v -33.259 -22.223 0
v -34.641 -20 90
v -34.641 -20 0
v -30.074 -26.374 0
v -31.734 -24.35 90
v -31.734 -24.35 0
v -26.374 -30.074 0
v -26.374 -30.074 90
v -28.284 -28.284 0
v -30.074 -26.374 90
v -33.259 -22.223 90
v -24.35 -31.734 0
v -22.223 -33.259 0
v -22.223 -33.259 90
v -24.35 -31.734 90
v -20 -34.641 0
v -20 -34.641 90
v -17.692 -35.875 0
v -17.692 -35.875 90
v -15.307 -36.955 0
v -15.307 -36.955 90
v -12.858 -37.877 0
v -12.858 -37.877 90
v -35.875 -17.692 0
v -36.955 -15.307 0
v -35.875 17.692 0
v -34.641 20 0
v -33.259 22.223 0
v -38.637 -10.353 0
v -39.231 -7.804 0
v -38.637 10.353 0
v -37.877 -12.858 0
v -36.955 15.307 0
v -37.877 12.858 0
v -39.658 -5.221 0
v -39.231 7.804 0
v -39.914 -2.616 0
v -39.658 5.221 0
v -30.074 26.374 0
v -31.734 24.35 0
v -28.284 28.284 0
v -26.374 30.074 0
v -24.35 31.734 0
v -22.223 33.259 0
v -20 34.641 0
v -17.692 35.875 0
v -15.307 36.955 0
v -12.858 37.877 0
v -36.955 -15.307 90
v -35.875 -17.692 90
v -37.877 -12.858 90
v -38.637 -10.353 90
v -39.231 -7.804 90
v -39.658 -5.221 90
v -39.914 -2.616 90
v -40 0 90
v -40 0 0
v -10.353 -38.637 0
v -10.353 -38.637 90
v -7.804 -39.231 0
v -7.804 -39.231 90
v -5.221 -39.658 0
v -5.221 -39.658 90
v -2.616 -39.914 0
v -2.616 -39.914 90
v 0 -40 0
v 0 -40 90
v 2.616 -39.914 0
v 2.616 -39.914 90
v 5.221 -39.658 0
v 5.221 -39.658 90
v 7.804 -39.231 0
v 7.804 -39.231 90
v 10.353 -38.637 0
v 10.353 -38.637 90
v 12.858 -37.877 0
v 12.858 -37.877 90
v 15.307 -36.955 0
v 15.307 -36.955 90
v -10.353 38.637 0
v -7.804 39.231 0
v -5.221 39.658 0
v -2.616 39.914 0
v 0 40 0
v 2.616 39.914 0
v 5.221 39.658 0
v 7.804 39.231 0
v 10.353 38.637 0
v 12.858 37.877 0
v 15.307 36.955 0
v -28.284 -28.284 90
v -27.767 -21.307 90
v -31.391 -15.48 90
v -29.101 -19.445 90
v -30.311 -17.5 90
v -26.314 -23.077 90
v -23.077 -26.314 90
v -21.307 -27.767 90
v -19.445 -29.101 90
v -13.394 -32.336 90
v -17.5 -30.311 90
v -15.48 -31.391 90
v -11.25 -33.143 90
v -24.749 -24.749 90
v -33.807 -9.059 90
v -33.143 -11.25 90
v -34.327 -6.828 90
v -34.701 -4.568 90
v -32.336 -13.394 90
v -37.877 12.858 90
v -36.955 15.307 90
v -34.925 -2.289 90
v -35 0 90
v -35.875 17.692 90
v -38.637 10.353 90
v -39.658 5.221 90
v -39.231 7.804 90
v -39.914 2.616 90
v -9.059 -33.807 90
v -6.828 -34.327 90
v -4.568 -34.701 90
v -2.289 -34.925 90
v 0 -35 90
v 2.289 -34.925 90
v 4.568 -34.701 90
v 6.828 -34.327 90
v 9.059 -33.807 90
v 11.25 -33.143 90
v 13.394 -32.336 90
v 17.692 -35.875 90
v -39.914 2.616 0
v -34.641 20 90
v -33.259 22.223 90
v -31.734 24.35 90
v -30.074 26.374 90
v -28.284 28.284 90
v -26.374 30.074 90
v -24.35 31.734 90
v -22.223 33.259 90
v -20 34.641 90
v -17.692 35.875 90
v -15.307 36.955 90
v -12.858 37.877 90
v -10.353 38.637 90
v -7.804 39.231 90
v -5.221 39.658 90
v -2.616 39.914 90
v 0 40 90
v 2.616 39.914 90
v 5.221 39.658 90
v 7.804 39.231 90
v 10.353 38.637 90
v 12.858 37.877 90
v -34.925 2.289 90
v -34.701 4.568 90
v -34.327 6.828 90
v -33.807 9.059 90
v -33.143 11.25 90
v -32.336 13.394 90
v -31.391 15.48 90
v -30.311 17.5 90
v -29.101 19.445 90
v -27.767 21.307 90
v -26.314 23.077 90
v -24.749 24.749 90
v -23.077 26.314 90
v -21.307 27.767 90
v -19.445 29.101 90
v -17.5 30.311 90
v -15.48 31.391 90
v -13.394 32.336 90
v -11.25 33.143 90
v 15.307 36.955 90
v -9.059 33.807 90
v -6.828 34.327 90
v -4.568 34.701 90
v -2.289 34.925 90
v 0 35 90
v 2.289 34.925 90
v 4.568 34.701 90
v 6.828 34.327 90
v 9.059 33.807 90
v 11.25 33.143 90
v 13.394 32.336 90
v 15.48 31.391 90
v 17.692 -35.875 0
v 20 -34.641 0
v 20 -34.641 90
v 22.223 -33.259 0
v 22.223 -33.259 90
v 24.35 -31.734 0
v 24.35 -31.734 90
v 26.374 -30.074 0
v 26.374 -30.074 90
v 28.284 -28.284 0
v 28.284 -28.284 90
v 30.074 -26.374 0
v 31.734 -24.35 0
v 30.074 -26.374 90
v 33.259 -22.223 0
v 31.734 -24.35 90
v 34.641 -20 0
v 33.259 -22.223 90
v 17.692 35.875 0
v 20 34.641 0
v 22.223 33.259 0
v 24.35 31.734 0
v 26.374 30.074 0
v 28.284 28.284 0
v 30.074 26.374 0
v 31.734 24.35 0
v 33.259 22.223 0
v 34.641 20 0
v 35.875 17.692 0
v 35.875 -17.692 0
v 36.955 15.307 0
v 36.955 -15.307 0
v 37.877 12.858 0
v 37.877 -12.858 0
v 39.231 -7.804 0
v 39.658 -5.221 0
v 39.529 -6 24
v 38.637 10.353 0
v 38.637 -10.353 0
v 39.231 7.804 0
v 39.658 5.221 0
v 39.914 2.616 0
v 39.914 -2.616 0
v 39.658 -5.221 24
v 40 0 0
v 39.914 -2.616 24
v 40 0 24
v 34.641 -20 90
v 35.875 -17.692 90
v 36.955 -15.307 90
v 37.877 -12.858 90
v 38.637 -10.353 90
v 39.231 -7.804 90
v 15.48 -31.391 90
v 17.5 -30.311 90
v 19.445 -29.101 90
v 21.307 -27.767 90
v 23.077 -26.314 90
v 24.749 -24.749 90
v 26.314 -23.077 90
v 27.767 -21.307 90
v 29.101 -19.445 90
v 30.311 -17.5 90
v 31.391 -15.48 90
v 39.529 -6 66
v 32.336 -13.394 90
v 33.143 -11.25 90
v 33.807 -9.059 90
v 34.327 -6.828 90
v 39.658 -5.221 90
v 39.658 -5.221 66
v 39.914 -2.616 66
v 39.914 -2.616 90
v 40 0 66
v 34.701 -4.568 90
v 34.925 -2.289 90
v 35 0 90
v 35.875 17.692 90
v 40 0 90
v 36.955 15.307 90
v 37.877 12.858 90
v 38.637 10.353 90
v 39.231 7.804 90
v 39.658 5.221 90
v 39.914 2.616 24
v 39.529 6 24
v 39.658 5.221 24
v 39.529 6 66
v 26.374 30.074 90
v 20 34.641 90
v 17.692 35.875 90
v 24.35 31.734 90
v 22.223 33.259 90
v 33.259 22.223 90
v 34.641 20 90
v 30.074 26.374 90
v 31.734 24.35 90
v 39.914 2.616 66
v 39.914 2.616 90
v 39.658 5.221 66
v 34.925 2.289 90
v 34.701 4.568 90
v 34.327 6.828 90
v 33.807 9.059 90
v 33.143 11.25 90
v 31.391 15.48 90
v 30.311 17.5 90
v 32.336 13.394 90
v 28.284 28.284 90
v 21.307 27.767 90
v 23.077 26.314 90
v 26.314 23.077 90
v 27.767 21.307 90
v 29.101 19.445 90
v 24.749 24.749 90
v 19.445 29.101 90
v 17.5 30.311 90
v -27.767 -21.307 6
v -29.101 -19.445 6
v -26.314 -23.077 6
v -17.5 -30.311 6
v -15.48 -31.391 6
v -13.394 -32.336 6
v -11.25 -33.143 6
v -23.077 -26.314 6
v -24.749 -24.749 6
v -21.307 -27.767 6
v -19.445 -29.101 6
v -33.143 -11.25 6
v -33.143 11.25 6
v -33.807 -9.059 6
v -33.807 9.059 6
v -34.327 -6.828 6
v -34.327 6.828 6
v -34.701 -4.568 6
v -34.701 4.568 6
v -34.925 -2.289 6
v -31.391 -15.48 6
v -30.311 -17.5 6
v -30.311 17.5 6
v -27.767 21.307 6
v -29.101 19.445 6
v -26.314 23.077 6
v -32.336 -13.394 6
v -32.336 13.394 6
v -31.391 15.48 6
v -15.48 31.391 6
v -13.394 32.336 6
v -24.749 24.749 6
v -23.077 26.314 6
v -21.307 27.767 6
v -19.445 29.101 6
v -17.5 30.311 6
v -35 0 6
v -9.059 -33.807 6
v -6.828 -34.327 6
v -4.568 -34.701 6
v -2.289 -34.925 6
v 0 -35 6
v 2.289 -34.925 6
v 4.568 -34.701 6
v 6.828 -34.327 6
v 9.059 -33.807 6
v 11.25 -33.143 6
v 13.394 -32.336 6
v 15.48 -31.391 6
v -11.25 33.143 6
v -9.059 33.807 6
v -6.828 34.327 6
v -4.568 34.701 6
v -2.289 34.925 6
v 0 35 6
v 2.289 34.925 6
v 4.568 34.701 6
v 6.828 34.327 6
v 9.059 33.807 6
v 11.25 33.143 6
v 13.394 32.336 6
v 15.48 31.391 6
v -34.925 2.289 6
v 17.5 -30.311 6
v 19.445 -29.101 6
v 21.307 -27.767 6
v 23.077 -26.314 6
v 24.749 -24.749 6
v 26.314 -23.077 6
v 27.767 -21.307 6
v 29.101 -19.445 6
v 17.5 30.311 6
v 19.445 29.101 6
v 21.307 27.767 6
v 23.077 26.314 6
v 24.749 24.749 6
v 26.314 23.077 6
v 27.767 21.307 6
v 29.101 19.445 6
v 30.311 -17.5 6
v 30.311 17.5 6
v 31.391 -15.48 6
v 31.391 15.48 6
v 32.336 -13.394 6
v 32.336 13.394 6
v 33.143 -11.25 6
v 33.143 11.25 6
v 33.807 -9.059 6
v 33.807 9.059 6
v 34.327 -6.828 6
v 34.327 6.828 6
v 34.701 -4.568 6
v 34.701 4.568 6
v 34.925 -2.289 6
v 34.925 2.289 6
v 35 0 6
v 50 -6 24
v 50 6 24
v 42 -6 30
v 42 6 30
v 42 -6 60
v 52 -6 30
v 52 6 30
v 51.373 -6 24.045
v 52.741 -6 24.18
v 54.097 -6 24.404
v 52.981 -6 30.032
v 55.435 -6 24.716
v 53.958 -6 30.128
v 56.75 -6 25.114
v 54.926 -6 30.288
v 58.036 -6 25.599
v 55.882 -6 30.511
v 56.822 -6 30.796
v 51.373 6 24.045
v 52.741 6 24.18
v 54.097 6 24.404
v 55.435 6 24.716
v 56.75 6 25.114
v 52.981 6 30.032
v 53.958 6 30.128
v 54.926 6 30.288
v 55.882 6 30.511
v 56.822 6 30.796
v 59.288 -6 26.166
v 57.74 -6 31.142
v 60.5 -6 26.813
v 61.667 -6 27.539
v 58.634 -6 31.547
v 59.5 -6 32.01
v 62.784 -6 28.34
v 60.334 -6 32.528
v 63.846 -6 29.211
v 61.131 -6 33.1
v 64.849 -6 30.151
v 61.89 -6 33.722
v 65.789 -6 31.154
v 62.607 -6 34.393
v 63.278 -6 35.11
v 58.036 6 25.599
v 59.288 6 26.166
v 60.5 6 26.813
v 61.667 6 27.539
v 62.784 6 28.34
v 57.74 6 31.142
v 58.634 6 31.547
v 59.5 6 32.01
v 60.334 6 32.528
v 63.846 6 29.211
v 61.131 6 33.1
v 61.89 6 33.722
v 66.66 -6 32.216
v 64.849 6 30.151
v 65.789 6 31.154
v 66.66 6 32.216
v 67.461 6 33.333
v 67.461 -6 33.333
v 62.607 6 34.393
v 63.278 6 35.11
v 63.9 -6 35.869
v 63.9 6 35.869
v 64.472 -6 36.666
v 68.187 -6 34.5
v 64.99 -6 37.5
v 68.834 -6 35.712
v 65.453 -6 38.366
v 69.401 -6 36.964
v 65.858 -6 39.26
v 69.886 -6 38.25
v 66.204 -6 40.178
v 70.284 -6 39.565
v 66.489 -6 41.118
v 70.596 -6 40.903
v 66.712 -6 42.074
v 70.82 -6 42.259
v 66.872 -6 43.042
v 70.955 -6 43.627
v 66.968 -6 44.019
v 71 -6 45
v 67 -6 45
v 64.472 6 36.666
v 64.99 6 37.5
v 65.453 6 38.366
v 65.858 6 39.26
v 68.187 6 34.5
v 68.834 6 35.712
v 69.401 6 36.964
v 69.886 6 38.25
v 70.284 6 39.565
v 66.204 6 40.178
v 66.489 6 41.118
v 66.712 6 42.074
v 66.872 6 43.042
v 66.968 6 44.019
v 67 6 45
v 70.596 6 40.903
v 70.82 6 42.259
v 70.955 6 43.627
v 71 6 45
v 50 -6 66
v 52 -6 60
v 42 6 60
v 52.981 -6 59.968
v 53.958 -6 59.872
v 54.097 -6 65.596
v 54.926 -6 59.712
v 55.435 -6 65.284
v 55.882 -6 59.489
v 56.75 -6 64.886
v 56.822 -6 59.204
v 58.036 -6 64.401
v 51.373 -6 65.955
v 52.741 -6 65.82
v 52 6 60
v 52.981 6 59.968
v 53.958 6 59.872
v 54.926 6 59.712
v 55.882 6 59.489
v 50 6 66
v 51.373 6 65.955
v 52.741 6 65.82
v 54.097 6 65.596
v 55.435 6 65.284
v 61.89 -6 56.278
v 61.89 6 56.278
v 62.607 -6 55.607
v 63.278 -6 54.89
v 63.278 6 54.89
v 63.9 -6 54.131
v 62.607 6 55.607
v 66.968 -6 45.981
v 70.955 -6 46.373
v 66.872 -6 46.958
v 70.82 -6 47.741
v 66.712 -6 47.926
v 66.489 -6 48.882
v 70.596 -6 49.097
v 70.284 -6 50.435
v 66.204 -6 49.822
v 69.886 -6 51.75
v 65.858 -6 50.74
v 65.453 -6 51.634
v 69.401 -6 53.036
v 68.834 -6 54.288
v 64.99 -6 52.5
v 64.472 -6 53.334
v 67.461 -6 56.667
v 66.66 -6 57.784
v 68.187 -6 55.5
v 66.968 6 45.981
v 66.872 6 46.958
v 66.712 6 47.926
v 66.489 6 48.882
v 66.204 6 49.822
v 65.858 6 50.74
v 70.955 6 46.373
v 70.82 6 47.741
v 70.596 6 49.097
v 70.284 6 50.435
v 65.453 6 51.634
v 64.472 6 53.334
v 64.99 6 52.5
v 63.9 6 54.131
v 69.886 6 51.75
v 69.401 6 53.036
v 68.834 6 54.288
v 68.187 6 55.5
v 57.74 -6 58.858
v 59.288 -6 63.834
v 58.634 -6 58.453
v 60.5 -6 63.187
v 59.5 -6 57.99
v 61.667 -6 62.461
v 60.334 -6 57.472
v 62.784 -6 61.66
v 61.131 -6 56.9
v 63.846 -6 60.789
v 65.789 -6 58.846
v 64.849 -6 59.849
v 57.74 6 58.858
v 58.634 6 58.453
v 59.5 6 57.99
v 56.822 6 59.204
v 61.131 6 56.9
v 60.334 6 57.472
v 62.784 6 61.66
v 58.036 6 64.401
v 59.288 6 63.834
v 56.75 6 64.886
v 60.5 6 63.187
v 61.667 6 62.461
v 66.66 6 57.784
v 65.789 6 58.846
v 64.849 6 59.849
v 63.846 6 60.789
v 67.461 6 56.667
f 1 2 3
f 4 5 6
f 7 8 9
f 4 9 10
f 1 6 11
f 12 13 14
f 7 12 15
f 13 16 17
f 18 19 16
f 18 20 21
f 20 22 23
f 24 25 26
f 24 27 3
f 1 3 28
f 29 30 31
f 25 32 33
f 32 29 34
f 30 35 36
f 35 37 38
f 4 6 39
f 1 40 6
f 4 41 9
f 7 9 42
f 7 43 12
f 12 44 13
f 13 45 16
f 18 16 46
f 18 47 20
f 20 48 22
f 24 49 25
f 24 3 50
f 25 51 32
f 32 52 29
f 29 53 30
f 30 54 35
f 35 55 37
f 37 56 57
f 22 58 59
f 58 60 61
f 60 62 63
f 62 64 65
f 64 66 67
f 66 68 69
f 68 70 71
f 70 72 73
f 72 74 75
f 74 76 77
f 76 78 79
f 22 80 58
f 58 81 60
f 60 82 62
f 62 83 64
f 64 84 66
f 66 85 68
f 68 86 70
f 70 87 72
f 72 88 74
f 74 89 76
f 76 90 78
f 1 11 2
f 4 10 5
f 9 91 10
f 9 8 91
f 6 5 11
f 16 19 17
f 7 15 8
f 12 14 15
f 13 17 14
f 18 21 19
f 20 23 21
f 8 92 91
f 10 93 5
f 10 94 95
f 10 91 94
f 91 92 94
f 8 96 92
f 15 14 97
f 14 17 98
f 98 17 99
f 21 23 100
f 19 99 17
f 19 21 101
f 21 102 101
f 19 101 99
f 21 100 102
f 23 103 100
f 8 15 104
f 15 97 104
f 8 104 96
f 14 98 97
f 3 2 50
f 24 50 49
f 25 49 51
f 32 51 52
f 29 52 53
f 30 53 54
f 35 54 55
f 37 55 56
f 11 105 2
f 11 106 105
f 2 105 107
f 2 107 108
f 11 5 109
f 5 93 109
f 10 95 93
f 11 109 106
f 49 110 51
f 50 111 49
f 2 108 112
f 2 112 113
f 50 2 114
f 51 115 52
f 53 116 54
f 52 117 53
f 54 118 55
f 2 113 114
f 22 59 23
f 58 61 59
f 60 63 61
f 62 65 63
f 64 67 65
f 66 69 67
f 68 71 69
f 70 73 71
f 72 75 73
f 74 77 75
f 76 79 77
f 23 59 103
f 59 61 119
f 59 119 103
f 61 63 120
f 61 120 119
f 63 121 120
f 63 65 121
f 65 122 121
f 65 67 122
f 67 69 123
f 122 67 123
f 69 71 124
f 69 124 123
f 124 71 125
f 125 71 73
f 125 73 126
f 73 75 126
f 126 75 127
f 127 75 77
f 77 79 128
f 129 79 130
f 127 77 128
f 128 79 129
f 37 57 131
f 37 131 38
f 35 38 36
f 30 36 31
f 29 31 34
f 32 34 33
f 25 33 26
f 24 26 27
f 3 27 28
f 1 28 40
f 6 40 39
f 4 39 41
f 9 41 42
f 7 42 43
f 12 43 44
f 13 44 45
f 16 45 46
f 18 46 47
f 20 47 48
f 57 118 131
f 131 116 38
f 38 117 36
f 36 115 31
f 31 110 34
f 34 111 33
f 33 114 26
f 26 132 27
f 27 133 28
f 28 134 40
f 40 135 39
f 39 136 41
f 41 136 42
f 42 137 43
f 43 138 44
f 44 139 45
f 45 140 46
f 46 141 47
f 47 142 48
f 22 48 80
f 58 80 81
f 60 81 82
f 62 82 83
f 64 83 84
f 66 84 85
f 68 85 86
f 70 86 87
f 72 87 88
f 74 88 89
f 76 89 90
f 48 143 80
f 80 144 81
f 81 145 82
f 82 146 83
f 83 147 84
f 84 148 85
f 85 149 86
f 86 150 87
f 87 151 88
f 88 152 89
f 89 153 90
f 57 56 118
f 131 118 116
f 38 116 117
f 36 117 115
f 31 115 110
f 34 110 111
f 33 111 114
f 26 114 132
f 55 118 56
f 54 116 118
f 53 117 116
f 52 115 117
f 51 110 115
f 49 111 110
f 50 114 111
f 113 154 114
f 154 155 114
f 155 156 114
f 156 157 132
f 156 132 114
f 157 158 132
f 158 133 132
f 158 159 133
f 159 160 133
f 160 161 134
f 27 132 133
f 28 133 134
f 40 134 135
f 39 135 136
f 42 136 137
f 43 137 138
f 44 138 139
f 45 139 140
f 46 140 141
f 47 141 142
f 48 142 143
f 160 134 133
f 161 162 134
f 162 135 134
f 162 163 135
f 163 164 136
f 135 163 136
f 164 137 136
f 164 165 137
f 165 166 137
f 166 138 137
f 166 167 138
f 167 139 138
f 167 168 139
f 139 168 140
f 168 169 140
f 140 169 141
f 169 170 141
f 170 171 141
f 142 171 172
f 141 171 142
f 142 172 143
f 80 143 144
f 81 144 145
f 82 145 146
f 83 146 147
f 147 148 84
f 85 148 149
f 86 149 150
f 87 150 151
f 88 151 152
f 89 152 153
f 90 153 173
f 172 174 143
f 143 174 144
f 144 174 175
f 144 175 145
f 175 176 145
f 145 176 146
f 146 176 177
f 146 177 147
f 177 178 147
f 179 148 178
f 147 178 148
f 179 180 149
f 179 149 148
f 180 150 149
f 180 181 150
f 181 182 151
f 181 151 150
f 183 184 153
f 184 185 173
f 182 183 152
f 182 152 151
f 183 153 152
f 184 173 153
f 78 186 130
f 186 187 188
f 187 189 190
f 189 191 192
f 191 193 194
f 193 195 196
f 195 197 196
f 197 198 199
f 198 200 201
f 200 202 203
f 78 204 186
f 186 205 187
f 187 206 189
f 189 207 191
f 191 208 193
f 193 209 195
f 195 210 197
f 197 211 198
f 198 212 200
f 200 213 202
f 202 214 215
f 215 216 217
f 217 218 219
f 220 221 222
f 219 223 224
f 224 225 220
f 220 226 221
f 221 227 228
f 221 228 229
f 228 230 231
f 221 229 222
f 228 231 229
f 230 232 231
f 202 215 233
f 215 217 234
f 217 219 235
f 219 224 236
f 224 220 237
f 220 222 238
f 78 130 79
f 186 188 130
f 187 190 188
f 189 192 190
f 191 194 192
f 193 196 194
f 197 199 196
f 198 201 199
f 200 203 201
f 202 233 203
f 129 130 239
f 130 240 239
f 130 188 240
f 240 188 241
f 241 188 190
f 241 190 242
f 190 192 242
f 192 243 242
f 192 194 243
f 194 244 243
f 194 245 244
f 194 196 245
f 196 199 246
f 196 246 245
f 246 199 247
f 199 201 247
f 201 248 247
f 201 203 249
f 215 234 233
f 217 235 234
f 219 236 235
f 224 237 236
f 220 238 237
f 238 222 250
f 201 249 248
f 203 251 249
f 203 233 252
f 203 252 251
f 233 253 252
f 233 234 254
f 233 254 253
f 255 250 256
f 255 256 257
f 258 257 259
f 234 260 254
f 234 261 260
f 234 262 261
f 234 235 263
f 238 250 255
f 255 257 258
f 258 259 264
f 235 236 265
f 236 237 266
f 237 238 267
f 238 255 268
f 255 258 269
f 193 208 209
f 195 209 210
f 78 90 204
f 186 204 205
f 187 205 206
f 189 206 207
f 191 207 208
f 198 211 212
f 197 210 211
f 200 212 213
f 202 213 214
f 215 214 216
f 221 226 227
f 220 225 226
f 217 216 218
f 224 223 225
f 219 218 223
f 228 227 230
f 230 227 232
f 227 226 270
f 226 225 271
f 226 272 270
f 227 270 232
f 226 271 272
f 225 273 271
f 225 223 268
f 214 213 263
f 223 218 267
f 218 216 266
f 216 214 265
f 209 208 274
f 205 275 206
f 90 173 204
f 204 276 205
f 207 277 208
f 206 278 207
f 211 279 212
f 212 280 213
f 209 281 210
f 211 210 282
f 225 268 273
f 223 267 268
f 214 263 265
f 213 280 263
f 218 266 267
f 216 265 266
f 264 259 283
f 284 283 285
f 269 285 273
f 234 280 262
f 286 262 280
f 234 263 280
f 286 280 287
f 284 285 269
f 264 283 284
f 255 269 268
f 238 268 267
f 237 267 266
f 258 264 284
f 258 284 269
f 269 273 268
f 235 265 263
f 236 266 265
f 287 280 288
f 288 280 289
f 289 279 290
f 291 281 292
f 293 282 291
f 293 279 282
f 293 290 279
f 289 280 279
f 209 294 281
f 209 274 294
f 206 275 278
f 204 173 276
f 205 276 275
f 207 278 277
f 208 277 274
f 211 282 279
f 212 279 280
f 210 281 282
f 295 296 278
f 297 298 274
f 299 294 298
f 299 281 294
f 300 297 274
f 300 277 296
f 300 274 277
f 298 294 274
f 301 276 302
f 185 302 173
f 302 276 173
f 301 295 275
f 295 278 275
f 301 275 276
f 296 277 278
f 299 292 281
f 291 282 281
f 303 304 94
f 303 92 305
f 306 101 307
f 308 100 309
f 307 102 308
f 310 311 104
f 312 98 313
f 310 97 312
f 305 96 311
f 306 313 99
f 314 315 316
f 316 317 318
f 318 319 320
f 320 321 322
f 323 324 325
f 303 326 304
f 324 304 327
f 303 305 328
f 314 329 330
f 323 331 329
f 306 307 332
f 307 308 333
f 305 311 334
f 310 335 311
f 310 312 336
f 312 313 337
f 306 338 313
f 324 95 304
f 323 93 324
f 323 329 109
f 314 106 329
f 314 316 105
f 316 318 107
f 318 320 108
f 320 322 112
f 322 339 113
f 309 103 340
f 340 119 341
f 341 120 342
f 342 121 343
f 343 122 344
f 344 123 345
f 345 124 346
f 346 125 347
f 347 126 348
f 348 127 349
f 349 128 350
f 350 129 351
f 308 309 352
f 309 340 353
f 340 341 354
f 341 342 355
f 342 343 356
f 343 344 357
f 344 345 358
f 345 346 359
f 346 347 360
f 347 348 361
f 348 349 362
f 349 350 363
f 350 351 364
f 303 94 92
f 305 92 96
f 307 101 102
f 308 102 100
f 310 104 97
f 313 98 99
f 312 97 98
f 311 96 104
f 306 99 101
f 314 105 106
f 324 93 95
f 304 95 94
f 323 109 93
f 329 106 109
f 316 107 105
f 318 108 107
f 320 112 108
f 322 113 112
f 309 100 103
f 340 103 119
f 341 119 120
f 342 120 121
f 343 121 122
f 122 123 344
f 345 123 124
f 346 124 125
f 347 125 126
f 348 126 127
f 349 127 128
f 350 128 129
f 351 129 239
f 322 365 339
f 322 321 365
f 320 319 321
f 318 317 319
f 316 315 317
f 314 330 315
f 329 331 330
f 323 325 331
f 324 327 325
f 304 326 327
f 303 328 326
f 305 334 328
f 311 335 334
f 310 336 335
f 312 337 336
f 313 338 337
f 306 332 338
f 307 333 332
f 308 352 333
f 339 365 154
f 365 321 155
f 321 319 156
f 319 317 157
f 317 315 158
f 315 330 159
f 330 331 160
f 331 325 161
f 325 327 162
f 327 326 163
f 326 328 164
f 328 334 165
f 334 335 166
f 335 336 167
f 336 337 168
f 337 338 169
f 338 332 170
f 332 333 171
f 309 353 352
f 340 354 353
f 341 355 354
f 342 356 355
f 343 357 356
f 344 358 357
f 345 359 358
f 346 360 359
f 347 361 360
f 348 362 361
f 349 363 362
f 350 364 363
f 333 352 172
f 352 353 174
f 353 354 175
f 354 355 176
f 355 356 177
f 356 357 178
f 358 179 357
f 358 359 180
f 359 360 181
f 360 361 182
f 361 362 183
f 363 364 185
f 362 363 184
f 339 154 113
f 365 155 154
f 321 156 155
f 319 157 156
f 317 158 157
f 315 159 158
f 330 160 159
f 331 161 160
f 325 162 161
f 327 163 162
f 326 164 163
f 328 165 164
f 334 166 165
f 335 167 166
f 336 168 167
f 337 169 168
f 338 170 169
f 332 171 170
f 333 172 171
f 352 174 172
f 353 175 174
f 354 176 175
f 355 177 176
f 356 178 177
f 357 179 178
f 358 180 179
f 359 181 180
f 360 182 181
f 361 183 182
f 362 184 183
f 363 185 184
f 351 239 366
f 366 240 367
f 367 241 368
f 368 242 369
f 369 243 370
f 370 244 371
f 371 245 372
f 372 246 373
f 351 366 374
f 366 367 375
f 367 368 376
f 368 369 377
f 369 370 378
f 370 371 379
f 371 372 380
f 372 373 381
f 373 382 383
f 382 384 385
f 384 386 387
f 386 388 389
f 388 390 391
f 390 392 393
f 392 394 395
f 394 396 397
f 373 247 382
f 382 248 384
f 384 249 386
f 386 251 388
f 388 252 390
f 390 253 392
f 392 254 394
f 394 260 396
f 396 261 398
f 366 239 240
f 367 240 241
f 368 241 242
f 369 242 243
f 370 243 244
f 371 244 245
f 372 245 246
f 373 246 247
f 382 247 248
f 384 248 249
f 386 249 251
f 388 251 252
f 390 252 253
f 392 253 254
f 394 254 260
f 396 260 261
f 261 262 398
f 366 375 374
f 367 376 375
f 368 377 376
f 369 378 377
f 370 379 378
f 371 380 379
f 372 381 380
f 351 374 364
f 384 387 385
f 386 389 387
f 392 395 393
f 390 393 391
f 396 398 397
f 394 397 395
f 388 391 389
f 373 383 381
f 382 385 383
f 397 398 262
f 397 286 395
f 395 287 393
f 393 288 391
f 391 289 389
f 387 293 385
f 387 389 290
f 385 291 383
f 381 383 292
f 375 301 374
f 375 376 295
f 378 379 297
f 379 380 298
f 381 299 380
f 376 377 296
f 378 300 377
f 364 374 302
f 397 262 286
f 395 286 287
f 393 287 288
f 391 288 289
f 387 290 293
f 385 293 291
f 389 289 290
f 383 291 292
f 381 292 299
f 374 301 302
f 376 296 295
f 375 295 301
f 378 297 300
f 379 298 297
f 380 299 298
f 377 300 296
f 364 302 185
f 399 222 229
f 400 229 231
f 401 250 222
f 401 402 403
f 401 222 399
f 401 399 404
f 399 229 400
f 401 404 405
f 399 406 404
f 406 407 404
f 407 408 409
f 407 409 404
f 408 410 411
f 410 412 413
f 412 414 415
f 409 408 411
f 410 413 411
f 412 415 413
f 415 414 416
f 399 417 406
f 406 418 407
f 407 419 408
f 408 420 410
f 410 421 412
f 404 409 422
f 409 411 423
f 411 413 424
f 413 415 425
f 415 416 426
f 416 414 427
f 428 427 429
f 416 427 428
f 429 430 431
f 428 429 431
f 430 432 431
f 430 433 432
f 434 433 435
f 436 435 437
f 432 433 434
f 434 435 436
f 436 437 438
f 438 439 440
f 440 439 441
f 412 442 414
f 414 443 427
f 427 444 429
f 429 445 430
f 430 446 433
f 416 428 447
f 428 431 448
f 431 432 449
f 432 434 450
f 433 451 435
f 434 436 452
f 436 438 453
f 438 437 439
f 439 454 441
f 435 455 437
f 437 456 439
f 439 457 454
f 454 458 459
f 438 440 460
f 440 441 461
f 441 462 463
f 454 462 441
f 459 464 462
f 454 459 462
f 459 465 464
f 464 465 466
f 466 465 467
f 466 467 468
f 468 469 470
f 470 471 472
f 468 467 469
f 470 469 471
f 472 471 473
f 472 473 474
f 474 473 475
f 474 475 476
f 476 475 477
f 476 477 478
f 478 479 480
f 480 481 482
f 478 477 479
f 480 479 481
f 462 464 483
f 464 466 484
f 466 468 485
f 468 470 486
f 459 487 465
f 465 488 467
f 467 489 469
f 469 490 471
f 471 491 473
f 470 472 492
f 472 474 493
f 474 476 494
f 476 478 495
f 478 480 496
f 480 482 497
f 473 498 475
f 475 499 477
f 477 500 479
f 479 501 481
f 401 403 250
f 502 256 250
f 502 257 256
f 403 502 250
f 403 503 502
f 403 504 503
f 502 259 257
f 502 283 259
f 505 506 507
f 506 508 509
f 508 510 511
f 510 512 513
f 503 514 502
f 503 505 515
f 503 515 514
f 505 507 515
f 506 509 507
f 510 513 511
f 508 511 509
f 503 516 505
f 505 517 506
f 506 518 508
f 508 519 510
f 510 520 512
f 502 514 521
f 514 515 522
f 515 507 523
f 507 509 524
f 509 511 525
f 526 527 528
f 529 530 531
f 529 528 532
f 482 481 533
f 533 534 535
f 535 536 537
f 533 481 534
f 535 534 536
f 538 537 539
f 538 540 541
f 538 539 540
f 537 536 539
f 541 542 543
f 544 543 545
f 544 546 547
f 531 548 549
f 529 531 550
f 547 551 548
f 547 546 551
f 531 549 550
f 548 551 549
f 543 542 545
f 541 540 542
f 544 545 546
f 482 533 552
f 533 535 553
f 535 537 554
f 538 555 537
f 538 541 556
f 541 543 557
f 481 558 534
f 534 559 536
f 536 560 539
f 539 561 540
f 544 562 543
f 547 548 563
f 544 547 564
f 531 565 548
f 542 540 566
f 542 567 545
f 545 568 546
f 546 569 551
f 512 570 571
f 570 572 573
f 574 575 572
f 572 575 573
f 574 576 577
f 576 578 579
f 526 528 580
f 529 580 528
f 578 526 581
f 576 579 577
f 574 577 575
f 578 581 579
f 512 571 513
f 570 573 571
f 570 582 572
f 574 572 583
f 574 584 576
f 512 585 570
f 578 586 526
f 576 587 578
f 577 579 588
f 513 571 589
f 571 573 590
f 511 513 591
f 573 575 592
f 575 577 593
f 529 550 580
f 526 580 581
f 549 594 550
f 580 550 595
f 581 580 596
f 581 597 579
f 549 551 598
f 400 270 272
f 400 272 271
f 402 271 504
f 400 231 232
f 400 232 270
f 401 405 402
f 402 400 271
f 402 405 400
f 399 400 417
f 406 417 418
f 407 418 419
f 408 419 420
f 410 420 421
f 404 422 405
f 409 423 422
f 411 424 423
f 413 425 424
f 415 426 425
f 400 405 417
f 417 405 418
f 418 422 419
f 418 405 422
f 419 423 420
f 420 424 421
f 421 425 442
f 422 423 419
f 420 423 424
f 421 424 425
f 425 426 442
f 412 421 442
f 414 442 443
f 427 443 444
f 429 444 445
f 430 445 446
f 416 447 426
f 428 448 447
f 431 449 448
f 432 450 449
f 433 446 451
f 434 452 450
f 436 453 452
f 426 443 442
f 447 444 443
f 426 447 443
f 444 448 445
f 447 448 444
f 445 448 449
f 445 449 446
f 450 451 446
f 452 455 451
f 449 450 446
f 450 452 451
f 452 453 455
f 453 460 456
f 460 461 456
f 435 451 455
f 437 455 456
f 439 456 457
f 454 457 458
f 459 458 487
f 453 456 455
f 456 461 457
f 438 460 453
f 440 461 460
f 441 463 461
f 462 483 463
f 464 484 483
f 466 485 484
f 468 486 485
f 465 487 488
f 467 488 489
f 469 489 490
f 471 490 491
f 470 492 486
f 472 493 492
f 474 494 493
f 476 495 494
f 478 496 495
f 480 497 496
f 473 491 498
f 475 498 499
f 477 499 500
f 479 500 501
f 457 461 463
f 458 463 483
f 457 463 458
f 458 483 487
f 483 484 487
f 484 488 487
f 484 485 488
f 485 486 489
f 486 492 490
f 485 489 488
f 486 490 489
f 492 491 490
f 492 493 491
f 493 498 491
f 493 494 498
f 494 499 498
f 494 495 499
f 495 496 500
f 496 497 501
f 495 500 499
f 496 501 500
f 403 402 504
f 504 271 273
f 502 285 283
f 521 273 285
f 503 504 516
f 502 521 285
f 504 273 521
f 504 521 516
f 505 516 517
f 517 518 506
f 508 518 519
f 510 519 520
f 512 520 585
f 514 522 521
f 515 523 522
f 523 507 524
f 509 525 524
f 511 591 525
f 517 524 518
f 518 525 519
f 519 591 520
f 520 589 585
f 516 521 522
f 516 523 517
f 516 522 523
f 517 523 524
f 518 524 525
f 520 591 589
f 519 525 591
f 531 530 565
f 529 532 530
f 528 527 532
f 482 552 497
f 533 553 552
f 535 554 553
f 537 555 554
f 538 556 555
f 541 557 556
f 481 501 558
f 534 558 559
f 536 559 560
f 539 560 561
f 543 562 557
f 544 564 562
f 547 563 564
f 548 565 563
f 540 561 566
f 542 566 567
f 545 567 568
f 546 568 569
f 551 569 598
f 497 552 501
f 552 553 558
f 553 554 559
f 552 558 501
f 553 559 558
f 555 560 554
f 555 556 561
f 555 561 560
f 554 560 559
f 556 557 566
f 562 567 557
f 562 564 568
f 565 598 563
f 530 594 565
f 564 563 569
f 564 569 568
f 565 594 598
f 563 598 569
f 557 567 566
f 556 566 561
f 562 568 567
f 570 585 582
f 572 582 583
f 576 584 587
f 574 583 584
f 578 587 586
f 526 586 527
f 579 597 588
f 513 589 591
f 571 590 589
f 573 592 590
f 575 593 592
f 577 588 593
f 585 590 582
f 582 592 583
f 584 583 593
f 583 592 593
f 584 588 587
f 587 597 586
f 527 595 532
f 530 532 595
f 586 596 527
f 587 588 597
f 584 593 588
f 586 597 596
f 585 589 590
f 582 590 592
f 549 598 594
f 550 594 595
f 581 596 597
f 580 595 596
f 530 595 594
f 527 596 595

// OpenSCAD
$fn = 96;

// マグ本体寸法
outer_diameter = 80;
inner_diameter = 70;
mug_height     = 90;
bottom_thickness = 6;

// 取手寸法
handle_thickness_y = 12;
handle_center_z    = mug_height / 2;

// D字取手の2D形状を、XZ平面上に作成してY方向へ押し出す
module d_handle() {
    outer_cx = 50;
    outer_cz = handle_center_z;
    outer_r  = 21;

    inner_cx = 52;
    inner_cz = handle_center_z;
    inner_r  = 15;   // 内側高さ 30mm

    outer_left_x = 36;  // 本体外周(半径40)へ4mm重なる
    inner_left_x = 42;  // 内側空間の開始位置
    arc_steps = 48;

    outer_points = concat(
        [
            [outer_left_x, outer_cz - outer_r],
            [outer_cx,     outer_cz - outer_r]
        ],
        [
            for (i = [0 : arc_steps])
                [
                    outer_cx + outer_r * cos(-90 + 180 * i / arc_steps),
                    outer_cz + outer_r * sin(-90 + 180 * i / arc_steps)
                ]
        ],
        [
            [outer_left_x, outer_cz + outer_r]
        ]
    );

    inner_points = concat(
        [
            [inner_left_x, inner_cz - inner_r],
            [inner_cx,     inner_cz - inner_r]
        ],
        [
            for (i = [0 : arc_steps])
                [
                    inner_cx + inner_r * cos(-90 + 180 * i / arc_steps),
                    inner_cz + inner_r * sin(-90 + 180 * i / arc_steps)
                ]
        ],
        [
            [inner_left_x, inner_cz + inner_r]
        ]
    );

    rotate([90, 0, 0])
        linear_extrude(height = handle_thickness_y, center = true)
            difference() {
                polygon(points = outer_points);
                polygon(points = inner_points);
            }
}

union() {
    // 中空の円筒形マグ本体
    difference() {
        cylinder(d = outer_diameter, h = mug_height);

        translate([0, 0, bottom_thickness])
            cylinder(
                d = inner_diameter,
                h = mug_height - bottom_thickness + 1
            );
    }

    // +X方向にのみ配置した取手
    d_handle();
}
